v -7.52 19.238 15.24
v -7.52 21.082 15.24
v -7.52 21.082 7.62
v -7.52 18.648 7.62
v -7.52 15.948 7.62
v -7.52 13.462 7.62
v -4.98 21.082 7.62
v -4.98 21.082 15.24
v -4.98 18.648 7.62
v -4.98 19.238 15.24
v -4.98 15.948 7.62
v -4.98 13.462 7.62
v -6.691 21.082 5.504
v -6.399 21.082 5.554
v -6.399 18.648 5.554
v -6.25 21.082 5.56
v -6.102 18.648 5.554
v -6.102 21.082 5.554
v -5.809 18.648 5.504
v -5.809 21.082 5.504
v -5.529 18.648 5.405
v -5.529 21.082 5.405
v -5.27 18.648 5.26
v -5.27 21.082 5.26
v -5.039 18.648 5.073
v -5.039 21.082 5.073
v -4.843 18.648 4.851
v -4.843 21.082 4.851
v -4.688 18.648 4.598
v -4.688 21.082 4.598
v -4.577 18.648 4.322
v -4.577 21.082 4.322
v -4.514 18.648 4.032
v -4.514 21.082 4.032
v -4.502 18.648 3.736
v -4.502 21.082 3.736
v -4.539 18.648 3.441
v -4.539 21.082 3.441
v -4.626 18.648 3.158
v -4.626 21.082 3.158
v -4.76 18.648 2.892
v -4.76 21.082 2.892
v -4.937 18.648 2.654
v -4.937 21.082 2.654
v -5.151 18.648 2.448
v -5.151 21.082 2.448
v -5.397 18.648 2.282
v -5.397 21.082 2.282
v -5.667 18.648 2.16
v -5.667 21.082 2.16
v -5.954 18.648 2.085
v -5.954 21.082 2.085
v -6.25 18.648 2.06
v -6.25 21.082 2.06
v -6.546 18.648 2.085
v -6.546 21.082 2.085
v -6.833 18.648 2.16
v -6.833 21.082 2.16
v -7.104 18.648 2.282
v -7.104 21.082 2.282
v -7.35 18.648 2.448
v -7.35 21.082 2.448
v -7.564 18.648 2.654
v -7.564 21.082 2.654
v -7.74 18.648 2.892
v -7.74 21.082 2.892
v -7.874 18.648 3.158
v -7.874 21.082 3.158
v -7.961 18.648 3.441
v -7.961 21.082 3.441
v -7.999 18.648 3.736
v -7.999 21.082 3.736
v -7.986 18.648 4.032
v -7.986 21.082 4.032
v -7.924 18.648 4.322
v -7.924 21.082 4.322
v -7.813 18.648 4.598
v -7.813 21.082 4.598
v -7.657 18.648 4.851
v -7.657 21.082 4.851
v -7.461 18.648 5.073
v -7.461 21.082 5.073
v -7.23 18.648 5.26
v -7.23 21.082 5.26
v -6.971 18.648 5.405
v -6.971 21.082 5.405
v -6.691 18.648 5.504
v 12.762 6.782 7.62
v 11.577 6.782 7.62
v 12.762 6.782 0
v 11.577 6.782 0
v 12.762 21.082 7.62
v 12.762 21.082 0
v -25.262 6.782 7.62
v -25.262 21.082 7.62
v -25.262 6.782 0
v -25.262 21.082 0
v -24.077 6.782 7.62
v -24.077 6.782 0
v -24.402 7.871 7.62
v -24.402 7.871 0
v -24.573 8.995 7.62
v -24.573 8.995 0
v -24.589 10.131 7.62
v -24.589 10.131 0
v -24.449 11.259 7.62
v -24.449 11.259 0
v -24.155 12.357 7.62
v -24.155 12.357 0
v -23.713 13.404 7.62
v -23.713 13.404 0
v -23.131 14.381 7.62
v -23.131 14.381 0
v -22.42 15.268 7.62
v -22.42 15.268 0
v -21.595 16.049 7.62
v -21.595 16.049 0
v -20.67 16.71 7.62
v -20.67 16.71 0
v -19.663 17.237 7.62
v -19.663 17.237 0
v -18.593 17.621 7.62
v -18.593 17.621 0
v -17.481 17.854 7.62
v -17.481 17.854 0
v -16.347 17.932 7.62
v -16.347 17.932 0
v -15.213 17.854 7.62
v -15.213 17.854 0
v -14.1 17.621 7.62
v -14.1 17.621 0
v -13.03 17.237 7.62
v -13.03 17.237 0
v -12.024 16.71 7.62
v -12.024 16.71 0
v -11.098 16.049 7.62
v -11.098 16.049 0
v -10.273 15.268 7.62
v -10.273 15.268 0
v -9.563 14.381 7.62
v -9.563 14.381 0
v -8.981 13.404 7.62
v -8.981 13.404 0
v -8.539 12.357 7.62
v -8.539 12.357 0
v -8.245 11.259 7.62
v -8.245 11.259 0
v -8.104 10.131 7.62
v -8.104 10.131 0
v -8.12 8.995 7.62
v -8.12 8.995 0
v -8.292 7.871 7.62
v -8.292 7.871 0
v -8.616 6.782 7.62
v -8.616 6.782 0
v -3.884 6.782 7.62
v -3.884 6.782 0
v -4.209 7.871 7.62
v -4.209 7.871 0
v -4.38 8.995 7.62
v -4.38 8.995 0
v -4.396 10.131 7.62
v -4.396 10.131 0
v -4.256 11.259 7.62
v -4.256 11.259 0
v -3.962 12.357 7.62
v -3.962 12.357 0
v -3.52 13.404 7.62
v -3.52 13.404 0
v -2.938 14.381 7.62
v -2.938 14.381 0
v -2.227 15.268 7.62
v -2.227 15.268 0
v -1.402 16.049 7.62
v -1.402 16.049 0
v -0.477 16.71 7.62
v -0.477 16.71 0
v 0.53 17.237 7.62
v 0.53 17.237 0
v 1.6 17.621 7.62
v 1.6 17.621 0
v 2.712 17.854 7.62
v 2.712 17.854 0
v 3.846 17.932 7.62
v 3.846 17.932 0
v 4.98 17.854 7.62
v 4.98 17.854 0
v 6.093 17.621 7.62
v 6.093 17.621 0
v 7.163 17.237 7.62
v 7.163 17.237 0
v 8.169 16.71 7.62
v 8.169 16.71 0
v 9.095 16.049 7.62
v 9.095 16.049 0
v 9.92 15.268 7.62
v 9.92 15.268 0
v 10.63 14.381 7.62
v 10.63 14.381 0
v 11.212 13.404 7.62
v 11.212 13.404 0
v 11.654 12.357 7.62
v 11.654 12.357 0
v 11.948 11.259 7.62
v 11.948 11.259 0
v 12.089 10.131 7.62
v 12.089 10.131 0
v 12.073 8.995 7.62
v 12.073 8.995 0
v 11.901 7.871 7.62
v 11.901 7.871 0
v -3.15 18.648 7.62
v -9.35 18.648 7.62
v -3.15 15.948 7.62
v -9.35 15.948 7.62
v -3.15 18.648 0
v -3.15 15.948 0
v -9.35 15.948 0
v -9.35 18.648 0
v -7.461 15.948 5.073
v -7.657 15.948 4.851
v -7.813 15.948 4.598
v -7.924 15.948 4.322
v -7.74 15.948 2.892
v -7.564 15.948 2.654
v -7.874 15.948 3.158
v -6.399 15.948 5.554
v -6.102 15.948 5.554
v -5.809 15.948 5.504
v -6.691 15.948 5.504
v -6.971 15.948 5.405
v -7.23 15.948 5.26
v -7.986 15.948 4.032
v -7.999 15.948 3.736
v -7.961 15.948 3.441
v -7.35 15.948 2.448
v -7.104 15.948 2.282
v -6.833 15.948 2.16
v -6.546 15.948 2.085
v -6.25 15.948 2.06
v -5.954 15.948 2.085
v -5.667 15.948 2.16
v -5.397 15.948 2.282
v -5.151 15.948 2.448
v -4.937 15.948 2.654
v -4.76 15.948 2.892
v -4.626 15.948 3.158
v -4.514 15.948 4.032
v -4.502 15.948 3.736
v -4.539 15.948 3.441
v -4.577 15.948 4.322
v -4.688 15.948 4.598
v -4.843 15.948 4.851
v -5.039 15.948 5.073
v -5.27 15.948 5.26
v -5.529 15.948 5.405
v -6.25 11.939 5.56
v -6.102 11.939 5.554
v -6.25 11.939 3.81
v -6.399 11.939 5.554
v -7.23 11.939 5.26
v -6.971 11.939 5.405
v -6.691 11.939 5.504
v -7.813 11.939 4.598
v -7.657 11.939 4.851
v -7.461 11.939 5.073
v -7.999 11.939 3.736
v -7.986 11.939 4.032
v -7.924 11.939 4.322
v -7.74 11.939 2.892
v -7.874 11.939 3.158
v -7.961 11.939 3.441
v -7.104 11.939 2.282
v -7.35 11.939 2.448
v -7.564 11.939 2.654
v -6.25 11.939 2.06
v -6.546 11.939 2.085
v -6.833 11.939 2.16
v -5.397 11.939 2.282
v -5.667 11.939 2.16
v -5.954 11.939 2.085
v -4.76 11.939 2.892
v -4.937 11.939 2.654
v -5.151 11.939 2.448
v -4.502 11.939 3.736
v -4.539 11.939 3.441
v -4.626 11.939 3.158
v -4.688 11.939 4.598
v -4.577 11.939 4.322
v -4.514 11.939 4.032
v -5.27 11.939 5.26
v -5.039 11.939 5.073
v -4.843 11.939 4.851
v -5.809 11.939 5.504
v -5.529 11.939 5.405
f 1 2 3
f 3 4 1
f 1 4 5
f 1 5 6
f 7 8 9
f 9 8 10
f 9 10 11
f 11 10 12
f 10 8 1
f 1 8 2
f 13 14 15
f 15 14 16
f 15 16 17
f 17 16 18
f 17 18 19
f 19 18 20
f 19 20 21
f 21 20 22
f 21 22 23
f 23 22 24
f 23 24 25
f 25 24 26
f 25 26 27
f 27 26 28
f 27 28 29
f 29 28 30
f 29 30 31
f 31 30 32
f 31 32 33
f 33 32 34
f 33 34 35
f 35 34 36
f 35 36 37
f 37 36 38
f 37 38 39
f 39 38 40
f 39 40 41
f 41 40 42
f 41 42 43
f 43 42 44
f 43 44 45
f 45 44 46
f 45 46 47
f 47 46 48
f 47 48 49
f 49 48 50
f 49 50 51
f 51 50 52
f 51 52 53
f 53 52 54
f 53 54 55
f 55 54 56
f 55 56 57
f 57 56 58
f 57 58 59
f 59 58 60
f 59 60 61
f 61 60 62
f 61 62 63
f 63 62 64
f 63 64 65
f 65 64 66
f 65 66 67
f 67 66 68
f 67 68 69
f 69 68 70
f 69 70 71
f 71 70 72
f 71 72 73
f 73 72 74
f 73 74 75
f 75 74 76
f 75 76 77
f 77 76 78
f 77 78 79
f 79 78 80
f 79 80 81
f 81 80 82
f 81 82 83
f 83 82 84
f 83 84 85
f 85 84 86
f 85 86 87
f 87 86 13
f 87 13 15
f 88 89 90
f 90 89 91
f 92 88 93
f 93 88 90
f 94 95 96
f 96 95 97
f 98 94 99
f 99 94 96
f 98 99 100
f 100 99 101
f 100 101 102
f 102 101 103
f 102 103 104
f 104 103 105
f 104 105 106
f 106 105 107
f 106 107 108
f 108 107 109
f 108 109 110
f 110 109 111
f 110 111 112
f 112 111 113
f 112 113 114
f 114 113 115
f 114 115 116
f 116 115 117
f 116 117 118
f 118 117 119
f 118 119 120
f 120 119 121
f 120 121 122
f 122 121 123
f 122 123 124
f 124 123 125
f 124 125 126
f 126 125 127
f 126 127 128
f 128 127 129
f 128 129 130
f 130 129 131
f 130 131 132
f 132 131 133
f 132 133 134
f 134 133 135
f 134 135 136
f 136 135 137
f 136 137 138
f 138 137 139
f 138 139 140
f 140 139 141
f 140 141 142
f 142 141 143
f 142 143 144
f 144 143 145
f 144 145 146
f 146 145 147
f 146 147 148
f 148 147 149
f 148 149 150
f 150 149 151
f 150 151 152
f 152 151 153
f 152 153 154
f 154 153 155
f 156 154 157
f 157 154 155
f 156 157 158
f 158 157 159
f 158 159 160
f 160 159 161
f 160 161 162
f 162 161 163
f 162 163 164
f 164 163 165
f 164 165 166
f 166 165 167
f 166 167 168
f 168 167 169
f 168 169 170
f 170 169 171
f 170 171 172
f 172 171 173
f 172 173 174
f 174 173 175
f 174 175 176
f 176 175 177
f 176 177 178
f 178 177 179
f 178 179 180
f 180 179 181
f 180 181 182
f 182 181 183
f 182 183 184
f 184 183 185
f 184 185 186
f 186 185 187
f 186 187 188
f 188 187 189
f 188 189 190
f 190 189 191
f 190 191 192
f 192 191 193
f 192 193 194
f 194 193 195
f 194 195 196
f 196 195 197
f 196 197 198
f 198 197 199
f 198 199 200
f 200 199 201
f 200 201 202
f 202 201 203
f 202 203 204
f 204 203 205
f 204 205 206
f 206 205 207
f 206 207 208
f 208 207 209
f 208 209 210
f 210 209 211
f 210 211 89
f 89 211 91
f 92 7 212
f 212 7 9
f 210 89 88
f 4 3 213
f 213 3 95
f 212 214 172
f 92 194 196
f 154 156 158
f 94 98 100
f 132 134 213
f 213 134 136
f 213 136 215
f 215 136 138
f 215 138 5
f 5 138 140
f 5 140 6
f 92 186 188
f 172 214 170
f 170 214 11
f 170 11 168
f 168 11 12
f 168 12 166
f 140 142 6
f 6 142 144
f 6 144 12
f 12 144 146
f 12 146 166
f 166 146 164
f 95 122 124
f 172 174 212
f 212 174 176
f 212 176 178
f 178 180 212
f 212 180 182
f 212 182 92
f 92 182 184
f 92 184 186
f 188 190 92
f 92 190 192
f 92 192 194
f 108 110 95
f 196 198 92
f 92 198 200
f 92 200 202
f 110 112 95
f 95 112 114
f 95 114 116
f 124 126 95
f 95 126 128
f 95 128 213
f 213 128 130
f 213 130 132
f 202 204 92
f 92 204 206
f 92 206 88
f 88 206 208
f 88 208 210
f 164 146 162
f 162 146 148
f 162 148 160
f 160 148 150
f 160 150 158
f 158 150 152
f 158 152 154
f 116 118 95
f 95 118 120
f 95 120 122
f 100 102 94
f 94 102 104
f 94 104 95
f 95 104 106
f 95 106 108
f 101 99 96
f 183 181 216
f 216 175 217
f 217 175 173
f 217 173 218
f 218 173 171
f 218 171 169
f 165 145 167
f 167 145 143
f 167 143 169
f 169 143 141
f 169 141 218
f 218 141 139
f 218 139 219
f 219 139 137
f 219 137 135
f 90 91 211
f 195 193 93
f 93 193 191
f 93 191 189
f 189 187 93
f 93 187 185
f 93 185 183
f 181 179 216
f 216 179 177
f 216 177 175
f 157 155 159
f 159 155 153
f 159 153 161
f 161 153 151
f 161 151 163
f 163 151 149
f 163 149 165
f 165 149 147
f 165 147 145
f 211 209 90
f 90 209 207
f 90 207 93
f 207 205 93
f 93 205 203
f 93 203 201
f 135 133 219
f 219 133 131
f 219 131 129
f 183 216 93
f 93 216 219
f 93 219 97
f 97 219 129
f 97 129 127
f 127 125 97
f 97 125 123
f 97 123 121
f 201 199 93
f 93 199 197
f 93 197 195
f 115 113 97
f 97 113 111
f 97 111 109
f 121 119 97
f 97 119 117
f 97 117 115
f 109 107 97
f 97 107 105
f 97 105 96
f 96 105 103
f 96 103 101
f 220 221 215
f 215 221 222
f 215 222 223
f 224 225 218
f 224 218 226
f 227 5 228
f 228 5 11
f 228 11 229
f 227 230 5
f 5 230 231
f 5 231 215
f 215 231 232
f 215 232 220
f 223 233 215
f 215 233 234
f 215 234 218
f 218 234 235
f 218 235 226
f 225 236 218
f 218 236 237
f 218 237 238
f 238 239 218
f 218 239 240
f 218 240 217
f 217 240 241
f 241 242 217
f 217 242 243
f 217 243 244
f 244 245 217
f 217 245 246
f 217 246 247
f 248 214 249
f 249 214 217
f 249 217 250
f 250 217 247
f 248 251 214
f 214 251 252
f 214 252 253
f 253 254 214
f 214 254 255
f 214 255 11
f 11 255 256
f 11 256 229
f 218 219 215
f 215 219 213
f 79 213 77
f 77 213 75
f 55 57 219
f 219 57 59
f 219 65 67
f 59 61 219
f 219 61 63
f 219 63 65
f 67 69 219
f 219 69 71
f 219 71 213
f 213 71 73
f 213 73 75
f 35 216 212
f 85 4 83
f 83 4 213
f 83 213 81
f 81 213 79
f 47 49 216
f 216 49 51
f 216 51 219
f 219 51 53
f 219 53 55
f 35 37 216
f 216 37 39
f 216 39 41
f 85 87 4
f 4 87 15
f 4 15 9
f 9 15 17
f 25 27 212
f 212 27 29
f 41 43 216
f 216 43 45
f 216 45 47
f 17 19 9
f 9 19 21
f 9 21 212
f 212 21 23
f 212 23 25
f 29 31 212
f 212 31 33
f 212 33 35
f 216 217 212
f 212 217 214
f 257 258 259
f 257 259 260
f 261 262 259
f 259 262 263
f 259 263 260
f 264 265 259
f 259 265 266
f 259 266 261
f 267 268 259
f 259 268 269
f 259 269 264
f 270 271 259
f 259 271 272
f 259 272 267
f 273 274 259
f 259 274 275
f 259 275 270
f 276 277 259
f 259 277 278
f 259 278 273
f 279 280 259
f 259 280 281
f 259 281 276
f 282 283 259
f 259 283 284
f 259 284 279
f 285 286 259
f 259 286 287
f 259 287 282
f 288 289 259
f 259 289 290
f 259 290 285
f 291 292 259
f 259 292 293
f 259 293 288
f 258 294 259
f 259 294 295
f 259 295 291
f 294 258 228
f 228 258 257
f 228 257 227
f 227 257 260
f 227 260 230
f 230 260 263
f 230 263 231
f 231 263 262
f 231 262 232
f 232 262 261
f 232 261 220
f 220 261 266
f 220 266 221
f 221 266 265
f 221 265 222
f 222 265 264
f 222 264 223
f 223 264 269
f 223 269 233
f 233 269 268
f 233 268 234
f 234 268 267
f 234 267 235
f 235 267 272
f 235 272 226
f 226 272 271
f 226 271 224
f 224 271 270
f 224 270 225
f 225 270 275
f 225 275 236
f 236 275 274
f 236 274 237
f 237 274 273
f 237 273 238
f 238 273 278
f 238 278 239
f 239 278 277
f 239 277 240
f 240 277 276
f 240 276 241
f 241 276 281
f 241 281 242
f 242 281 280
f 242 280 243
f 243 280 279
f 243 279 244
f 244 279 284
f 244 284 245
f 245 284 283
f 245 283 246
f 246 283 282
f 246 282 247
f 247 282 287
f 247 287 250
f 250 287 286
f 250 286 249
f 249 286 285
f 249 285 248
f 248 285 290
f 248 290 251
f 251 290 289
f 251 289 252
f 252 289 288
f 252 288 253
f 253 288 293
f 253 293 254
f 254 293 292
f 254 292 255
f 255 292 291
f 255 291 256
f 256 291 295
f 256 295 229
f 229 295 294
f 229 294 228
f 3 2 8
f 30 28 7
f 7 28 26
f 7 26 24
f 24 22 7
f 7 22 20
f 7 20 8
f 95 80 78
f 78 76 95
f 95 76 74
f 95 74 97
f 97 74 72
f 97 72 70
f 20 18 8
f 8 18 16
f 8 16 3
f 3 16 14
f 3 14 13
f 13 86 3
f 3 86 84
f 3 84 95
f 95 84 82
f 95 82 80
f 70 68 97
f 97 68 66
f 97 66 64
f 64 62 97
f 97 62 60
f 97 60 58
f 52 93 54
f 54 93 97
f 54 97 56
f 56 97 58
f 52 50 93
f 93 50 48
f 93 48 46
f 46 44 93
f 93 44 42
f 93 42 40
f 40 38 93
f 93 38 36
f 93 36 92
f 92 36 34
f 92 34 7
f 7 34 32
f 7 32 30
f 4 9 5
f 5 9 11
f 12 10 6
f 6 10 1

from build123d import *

# Parameters (mm, degrees)
BOSS_EXTRUDE1_DEPTH     = 7.619999999999999
CUT_EXTRUDE1_DEPTH      = 1.143
CUT_EXTRUDE1_DEPTH_BACK = 8
CUT_EXTRUDE2_DEPTH      = 7.619999999999999
BOSS_EXTRUDE2_START     = 1.143
SKETCH4_W               = 38.023799999999994
SKETCH4_H               = 7.619999999999999
SKETCH4_R               = 1.75
BOSS_EXTRUDE2_DEPTH     = 1.143
BOSS_EXTRUDE3_DEPTH     = 7.619999999999999
CUT_EXTRUDE3_DEPTH      = 7.619999999999999


with BuildPart() as part:
    # Sketch1 → Boss-Extrude1 (new body)
    with BuildSketch(Plane.XY):
        with BuildLine():
            ThreePointArc((-8.61622105177378, 6.7818000000000005), (-16.346714285714288, 17.932399999999998), (-24.077207519654795, 6.781800000000001))
            Line((-24.077207519654795, 6.781800000000001), (-24.88111428571429, 6.781800000000001))
            Line((-24.88111428571429, 6.781800000000001), (-24.88111428571429, 19.558000000000003))
            Line((-24.88111428571429, 19.558000000000003), (12.380685714285711, 19.558000000000003))
            Line((12.380685714285711, 19.558000000000003), (12.380685714285711, 6.7818000000000005))
            Line((12.380685714285711, 6.7818000000000005), (11.576778948226218, 6.7818000000000005))
            ThreePointArc((11.576778948226218, 6.7818000000000005), (3.846285714285714, 17.932399999999994), (-3.8842075196547947, 6.7818000000000005))
            Line((-3.8842075196547947, 6.7818000000000005), (-8.61622105177378, 6.7818000000000005))
        make_face()
        Polygon((12.380685714285711, 6.7818000000000005), (12.76168571428571, 6.781800000000001), (12.76168571428571, 19.939000000000004), (-25.262114285714286, 19.939000000000004), (-25.262114285714286, 6.781800000000001), (-24.88111428571429, 6.781800000000001), (-24.88111428571429, 19.558000000000003), (12.380685714285711, 19.558000000000003), align=None)
    extrude(amount=BOSS_EXTRUDE1_DEPTH)

    # Sketch2 → Cut-Extrude1 (cut, two sides: drawn at the far end of the back side and taken through both)
    with BuildSketch(Plane(origin=(0, 19.939000000000004, 0), x_dir=(1, 0, 0), z_dir=(0, 1, 0)).offset(-CUT_EXTRUDE1_DEPTH_BACK)):
        with BuildLine():
            ThreePointArc((-6.250214285714273, -2.0600000000000005), (-8.00021428571429, -3.8100000000000005), (-6.250214285714274, -5.5600000000000005))
            Line((-6.250214285714289, -5.5600000000000005), (-6.250214285714289, -2.0600000000000005))
        make_face()
        with BuildLine():
            Line((-6.250214285714289, -2.0600000000000005), (-6.250214285714289, -5.5600000000000005))
            ThreePointArc((-6.250214285714274, -5.5600000000000005), (-5.012777418637826, -5.047436867076454), (-4.500214285714289, -3.810000000000001))
            ThreePointArc((-4.500214285714289, -3.8100000000000005), (-5.0127774186378256, -2.5725631329235483), (-6.250214285714273, -2.0600000000000005))
        make_face()
    extrude(amount=CUT_EXTRUDE1_DEPTH + CUT_EXTRUDE1_DEPTH_BACK, mode=Mode.SUBTRACT)

    # Sketch3 → Cut-Extrude2 (cut)
    with BuildSketch(Plane.XY.offset(7.619999999999999)):
        Polygon((-9.350214285713994, 15.948293112068052), (-3.1502142857139956, 15.948293112068052), (-3.150214285713995, 18.64829304606805), (-9.350214285713994, 18.64829304606805), align=None)
    extrude(amount=-CUT_EXTRUDE2_DEPTH, mode=Mode.SUBTRACT)

    # Sketch4 → Boss-Extrude2 (add)
    with BuildSketch(Plane(origin=(0, 19.939000000000004, 0), x_dir=(1, 0, 0), z_dir=(0, 1, 0)).offset(BOSS_EXTRUDE2_START)):
        with Locations((-6.250214285714288, -3.8099999999999996)):
            Rectangle(SKETCH4_W, SKETCH4_H)
        with Locations(Location((-6.250214285714289, -3.8100000000000005, 0), (0, 0, 90))):
            Circle(SKETCH4_R, mode=Mode.SUBTRACT)
    extrude(amount=-BOSS_EXTRUDE2_DEPTH)

    # Sketch5 → Boss-Extrude3 (add)
    with BuildSketch(Plane.XY.offset(7.619999999999999)):
        Polygon((-7.520214285714289, 21.082000000000004), (-4.980214285714288, 21.082000000000004), (-4.980214285714287, 13.462000000000005), (-7.520214285714288, 13.462000000000005), align=None)
    extrude(amount=BOSS_EXTRUDE3_DEPTH)

    # Sketch6 → Cut-Extrude3 (cut)
    with BuildSketch(Plane(origin=(-4.980214285714286, -5.7e-16, 0), x_dir=(0, 0, -1), z_dir=(1, 1.1e-16, 0))):
        Polygon((-15.239999999999998, 13.462000000000005), (-7.619999999999999, 13.462000000000005), (-15.239999999999998, 19.238462155748426), align=None)
    extrude(amount=-CUT_EXTRUDE3_DEPTH, mode=Mode.SUBTRACT)


solid = part.part
